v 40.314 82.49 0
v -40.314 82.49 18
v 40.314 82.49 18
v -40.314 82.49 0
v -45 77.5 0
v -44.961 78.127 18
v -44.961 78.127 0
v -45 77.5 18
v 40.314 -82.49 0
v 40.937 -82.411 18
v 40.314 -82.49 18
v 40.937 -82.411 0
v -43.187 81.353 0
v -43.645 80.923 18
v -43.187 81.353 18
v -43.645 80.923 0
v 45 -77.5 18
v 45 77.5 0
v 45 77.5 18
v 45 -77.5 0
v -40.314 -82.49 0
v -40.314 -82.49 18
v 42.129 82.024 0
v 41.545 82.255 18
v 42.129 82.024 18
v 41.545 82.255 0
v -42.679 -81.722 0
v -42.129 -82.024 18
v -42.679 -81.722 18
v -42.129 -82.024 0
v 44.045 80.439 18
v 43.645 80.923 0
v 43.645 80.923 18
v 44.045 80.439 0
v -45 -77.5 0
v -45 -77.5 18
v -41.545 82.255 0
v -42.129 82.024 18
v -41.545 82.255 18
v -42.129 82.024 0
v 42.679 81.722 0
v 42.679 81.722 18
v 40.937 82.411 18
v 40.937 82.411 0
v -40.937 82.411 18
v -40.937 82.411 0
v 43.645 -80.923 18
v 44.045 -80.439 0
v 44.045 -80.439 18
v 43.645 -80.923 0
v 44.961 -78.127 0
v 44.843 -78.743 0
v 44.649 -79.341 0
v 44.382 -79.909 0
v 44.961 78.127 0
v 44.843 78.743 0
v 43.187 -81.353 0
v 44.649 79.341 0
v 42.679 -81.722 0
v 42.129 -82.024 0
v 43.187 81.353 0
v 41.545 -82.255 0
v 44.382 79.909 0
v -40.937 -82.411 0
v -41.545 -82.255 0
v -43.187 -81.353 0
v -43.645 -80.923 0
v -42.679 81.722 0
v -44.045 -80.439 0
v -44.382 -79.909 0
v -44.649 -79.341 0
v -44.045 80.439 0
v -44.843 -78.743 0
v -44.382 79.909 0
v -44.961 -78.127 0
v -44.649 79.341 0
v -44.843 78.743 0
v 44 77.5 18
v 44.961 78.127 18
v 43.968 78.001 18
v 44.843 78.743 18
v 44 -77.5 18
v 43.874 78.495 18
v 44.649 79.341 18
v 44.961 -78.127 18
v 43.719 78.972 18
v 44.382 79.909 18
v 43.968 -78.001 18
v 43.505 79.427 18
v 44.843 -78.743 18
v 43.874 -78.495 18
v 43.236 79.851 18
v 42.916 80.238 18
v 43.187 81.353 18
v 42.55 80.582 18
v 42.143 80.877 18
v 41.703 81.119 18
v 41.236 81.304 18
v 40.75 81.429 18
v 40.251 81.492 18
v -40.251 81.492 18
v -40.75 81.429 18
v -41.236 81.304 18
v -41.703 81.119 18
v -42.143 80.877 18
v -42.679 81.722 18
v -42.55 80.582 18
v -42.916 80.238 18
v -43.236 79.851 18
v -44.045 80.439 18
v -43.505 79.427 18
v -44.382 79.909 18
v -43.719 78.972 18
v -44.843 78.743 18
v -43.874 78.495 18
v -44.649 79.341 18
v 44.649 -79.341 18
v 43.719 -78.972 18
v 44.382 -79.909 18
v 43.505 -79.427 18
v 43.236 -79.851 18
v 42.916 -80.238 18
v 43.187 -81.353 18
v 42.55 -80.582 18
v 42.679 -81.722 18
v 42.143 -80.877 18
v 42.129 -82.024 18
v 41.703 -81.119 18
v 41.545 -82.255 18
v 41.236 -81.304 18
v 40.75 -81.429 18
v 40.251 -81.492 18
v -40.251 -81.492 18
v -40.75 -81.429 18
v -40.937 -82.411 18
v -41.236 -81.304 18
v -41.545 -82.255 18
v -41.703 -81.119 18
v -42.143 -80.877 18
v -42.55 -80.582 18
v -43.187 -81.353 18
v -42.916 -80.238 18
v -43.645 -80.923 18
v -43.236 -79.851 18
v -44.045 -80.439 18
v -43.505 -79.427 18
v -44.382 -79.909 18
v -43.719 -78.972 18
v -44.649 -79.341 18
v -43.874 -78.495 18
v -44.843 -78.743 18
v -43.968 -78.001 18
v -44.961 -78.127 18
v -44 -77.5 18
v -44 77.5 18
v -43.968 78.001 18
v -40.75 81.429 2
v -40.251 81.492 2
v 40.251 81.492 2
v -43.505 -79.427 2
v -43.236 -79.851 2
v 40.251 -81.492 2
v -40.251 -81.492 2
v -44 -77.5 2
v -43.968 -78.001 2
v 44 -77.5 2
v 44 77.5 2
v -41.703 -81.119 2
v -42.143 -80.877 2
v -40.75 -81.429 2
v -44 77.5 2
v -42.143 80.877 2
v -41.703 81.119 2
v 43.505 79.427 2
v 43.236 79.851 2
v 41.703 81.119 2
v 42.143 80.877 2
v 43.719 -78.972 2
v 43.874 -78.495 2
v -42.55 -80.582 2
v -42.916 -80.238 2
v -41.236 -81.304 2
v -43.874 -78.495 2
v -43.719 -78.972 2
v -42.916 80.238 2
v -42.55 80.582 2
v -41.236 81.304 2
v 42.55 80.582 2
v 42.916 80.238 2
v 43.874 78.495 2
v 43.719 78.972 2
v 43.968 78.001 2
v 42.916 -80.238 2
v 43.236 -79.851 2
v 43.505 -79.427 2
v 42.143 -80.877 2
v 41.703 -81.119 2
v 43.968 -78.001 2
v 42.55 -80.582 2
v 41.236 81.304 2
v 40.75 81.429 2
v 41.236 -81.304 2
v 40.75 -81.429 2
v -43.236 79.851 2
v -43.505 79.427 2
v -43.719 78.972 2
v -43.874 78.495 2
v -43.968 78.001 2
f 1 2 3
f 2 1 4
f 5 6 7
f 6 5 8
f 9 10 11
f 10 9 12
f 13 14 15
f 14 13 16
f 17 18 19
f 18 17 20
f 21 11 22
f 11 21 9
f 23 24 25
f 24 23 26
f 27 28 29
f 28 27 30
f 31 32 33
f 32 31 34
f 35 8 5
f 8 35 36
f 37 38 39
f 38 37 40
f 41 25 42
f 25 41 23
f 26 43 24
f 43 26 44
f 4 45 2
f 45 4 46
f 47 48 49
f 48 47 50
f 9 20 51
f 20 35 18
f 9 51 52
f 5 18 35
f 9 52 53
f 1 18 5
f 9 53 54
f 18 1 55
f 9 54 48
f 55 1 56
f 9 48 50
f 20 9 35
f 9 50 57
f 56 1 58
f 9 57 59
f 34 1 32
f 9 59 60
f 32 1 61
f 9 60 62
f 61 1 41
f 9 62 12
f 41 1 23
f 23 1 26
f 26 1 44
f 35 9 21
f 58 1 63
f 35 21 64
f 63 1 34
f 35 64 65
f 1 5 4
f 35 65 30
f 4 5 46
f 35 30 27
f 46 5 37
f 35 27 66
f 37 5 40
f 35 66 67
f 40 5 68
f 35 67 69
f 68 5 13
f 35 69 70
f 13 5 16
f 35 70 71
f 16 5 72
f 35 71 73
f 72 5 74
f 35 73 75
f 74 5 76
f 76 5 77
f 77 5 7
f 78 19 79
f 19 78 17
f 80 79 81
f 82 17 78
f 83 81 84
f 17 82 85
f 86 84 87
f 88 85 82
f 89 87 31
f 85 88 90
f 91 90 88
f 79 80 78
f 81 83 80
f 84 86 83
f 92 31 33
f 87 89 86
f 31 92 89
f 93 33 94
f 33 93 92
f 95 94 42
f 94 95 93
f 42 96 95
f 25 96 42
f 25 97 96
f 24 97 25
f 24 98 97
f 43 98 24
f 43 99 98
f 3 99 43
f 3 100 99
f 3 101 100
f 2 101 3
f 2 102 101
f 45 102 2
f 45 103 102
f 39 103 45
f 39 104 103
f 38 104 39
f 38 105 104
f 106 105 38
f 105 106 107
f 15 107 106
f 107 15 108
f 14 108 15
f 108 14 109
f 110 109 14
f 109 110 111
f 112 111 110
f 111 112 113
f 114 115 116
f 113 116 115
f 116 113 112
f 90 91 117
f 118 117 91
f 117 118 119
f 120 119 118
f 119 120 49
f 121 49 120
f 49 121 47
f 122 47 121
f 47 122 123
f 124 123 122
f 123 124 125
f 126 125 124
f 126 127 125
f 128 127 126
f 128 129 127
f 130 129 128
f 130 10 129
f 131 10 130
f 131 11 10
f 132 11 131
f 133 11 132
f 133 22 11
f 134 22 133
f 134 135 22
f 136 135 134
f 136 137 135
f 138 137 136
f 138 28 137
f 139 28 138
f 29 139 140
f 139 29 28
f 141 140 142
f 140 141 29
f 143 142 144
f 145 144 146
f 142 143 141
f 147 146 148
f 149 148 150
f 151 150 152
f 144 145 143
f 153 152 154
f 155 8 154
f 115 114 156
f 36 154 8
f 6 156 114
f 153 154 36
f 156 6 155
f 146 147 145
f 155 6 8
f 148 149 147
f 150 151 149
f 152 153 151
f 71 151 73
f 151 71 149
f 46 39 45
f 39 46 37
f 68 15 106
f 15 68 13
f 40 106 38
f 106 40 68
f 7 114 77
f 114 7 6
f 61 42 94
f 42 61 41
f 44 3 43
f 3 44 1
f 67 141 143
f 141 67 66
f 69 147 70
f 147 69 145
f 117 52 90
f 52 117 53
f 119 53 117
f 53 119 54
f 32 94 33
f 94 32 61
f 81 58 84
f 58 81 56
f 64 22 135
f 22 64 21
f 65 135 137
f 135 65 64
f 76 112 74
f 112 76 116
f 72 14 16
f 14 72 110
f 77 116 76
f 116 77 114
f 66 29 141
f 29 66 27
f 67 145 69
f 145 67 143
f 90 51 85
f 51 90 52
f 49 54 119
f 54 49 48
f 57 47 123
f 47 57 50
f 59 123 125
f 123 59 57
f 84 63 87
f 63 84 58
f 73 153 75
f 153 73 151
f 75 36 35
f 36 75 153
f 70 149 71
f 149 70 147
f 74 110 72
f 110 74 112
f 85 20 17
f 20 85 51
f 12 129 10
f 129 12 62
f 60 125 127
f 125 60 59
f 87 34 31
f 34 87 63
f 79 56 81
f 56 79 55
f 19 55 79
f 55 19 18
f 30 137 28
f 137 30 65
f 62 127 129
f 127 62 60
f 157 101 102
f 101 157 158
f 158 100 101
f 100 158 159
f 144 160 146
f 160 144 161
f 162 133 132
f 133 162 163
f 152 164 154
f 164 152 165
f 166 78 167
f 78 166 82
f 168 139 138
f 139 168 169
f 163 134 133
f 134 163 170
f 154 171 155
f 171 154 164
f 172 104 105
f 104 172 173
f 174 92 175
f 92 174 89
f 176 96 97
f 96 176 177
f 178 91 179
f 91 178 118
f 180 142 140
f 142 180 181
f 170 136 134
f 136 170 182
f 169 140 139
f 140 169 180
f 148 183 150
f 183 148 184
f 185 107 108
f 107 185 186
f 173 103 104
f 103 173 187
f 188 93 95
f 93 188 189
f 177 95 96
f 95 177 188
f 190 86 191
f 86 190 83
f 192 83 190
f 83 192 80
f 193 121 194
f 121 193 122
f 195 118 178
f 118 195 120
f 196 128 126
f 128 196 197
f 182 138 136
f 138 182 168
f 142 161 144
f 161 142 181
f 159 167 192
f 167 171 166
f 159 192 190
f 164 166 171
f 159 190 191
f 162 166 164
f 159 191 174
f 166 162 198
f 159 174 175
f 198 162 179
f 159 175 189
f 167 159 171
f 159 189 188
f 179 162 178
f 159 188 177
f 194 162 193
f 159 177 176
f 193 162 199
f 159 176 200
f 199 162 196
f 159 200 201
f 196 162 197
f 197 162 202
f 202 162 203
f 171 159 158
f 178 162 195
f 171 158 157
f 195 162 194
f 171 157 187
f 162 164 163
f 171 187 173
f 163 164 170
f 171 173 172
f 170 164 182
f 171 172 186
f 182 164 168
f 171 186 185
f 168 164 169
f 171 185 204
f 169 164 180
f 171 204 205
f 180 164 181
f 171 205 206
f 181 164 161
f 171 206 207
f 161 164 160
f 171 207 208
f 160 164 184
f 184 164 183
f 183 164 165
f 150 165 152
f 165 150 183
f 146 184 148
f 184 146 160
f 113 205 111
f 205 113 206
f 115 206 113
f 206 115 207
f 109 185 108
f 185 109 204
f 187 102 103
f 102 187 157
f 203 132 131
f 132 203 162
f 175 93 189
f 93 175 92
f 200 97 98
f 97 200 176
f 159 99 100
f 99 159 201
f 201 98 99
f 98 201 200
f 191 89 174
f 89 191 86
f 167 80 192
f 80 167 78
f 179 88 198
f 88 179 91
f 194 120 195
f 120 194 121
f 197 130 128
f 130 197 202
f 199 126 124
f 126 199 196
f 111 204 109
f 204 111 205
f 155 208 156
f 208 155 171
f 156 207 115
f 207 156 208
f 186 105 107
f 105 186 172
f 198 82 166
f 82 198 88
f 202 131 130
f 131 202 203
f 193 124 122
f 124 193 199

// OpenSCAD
$fn = 50;


difference() {
	union() {
		hull() {
			translate(v = [-40.0000000000, 77.5000000000, 0]) {
				cylinder(h = 18, r = 5);
			}
			translate(v = [40.0000000000, 77.5000000000, 0]) {
				cylinder(h = 18, r = 5);
			}
			translate(v = [-40.0000000000, -77.5000000000, 0]) {
				cylinder(h = 18, r = 5);
			}
			translate(v = [40.0000000000, -77.5000000000, 0]) {
				cylinder(h = 18, r = 5);
			}
		}
	}
	union() {
		translate(v = [0, 0, 2]) {
			hull() {
				translate(v = [-40.0000000000, 77.5000000000, 0]) {
					cylinder(h = 16, r = 4);
				}
				translate(v = [40.0000000000, 77.5000000000, 0]) {
					cylinder(h = 16, r = 4);
				}
				translate(v = [-40.0000000000, -77.5000000000, 0]) {
					cylinder(h = 16, r = 4);
				}
				translate(v = [40.0000000000, -77.5000000000, 0]) {
					cylinder(h = 16, r = 4);
				}
			}
		}
	}
}
